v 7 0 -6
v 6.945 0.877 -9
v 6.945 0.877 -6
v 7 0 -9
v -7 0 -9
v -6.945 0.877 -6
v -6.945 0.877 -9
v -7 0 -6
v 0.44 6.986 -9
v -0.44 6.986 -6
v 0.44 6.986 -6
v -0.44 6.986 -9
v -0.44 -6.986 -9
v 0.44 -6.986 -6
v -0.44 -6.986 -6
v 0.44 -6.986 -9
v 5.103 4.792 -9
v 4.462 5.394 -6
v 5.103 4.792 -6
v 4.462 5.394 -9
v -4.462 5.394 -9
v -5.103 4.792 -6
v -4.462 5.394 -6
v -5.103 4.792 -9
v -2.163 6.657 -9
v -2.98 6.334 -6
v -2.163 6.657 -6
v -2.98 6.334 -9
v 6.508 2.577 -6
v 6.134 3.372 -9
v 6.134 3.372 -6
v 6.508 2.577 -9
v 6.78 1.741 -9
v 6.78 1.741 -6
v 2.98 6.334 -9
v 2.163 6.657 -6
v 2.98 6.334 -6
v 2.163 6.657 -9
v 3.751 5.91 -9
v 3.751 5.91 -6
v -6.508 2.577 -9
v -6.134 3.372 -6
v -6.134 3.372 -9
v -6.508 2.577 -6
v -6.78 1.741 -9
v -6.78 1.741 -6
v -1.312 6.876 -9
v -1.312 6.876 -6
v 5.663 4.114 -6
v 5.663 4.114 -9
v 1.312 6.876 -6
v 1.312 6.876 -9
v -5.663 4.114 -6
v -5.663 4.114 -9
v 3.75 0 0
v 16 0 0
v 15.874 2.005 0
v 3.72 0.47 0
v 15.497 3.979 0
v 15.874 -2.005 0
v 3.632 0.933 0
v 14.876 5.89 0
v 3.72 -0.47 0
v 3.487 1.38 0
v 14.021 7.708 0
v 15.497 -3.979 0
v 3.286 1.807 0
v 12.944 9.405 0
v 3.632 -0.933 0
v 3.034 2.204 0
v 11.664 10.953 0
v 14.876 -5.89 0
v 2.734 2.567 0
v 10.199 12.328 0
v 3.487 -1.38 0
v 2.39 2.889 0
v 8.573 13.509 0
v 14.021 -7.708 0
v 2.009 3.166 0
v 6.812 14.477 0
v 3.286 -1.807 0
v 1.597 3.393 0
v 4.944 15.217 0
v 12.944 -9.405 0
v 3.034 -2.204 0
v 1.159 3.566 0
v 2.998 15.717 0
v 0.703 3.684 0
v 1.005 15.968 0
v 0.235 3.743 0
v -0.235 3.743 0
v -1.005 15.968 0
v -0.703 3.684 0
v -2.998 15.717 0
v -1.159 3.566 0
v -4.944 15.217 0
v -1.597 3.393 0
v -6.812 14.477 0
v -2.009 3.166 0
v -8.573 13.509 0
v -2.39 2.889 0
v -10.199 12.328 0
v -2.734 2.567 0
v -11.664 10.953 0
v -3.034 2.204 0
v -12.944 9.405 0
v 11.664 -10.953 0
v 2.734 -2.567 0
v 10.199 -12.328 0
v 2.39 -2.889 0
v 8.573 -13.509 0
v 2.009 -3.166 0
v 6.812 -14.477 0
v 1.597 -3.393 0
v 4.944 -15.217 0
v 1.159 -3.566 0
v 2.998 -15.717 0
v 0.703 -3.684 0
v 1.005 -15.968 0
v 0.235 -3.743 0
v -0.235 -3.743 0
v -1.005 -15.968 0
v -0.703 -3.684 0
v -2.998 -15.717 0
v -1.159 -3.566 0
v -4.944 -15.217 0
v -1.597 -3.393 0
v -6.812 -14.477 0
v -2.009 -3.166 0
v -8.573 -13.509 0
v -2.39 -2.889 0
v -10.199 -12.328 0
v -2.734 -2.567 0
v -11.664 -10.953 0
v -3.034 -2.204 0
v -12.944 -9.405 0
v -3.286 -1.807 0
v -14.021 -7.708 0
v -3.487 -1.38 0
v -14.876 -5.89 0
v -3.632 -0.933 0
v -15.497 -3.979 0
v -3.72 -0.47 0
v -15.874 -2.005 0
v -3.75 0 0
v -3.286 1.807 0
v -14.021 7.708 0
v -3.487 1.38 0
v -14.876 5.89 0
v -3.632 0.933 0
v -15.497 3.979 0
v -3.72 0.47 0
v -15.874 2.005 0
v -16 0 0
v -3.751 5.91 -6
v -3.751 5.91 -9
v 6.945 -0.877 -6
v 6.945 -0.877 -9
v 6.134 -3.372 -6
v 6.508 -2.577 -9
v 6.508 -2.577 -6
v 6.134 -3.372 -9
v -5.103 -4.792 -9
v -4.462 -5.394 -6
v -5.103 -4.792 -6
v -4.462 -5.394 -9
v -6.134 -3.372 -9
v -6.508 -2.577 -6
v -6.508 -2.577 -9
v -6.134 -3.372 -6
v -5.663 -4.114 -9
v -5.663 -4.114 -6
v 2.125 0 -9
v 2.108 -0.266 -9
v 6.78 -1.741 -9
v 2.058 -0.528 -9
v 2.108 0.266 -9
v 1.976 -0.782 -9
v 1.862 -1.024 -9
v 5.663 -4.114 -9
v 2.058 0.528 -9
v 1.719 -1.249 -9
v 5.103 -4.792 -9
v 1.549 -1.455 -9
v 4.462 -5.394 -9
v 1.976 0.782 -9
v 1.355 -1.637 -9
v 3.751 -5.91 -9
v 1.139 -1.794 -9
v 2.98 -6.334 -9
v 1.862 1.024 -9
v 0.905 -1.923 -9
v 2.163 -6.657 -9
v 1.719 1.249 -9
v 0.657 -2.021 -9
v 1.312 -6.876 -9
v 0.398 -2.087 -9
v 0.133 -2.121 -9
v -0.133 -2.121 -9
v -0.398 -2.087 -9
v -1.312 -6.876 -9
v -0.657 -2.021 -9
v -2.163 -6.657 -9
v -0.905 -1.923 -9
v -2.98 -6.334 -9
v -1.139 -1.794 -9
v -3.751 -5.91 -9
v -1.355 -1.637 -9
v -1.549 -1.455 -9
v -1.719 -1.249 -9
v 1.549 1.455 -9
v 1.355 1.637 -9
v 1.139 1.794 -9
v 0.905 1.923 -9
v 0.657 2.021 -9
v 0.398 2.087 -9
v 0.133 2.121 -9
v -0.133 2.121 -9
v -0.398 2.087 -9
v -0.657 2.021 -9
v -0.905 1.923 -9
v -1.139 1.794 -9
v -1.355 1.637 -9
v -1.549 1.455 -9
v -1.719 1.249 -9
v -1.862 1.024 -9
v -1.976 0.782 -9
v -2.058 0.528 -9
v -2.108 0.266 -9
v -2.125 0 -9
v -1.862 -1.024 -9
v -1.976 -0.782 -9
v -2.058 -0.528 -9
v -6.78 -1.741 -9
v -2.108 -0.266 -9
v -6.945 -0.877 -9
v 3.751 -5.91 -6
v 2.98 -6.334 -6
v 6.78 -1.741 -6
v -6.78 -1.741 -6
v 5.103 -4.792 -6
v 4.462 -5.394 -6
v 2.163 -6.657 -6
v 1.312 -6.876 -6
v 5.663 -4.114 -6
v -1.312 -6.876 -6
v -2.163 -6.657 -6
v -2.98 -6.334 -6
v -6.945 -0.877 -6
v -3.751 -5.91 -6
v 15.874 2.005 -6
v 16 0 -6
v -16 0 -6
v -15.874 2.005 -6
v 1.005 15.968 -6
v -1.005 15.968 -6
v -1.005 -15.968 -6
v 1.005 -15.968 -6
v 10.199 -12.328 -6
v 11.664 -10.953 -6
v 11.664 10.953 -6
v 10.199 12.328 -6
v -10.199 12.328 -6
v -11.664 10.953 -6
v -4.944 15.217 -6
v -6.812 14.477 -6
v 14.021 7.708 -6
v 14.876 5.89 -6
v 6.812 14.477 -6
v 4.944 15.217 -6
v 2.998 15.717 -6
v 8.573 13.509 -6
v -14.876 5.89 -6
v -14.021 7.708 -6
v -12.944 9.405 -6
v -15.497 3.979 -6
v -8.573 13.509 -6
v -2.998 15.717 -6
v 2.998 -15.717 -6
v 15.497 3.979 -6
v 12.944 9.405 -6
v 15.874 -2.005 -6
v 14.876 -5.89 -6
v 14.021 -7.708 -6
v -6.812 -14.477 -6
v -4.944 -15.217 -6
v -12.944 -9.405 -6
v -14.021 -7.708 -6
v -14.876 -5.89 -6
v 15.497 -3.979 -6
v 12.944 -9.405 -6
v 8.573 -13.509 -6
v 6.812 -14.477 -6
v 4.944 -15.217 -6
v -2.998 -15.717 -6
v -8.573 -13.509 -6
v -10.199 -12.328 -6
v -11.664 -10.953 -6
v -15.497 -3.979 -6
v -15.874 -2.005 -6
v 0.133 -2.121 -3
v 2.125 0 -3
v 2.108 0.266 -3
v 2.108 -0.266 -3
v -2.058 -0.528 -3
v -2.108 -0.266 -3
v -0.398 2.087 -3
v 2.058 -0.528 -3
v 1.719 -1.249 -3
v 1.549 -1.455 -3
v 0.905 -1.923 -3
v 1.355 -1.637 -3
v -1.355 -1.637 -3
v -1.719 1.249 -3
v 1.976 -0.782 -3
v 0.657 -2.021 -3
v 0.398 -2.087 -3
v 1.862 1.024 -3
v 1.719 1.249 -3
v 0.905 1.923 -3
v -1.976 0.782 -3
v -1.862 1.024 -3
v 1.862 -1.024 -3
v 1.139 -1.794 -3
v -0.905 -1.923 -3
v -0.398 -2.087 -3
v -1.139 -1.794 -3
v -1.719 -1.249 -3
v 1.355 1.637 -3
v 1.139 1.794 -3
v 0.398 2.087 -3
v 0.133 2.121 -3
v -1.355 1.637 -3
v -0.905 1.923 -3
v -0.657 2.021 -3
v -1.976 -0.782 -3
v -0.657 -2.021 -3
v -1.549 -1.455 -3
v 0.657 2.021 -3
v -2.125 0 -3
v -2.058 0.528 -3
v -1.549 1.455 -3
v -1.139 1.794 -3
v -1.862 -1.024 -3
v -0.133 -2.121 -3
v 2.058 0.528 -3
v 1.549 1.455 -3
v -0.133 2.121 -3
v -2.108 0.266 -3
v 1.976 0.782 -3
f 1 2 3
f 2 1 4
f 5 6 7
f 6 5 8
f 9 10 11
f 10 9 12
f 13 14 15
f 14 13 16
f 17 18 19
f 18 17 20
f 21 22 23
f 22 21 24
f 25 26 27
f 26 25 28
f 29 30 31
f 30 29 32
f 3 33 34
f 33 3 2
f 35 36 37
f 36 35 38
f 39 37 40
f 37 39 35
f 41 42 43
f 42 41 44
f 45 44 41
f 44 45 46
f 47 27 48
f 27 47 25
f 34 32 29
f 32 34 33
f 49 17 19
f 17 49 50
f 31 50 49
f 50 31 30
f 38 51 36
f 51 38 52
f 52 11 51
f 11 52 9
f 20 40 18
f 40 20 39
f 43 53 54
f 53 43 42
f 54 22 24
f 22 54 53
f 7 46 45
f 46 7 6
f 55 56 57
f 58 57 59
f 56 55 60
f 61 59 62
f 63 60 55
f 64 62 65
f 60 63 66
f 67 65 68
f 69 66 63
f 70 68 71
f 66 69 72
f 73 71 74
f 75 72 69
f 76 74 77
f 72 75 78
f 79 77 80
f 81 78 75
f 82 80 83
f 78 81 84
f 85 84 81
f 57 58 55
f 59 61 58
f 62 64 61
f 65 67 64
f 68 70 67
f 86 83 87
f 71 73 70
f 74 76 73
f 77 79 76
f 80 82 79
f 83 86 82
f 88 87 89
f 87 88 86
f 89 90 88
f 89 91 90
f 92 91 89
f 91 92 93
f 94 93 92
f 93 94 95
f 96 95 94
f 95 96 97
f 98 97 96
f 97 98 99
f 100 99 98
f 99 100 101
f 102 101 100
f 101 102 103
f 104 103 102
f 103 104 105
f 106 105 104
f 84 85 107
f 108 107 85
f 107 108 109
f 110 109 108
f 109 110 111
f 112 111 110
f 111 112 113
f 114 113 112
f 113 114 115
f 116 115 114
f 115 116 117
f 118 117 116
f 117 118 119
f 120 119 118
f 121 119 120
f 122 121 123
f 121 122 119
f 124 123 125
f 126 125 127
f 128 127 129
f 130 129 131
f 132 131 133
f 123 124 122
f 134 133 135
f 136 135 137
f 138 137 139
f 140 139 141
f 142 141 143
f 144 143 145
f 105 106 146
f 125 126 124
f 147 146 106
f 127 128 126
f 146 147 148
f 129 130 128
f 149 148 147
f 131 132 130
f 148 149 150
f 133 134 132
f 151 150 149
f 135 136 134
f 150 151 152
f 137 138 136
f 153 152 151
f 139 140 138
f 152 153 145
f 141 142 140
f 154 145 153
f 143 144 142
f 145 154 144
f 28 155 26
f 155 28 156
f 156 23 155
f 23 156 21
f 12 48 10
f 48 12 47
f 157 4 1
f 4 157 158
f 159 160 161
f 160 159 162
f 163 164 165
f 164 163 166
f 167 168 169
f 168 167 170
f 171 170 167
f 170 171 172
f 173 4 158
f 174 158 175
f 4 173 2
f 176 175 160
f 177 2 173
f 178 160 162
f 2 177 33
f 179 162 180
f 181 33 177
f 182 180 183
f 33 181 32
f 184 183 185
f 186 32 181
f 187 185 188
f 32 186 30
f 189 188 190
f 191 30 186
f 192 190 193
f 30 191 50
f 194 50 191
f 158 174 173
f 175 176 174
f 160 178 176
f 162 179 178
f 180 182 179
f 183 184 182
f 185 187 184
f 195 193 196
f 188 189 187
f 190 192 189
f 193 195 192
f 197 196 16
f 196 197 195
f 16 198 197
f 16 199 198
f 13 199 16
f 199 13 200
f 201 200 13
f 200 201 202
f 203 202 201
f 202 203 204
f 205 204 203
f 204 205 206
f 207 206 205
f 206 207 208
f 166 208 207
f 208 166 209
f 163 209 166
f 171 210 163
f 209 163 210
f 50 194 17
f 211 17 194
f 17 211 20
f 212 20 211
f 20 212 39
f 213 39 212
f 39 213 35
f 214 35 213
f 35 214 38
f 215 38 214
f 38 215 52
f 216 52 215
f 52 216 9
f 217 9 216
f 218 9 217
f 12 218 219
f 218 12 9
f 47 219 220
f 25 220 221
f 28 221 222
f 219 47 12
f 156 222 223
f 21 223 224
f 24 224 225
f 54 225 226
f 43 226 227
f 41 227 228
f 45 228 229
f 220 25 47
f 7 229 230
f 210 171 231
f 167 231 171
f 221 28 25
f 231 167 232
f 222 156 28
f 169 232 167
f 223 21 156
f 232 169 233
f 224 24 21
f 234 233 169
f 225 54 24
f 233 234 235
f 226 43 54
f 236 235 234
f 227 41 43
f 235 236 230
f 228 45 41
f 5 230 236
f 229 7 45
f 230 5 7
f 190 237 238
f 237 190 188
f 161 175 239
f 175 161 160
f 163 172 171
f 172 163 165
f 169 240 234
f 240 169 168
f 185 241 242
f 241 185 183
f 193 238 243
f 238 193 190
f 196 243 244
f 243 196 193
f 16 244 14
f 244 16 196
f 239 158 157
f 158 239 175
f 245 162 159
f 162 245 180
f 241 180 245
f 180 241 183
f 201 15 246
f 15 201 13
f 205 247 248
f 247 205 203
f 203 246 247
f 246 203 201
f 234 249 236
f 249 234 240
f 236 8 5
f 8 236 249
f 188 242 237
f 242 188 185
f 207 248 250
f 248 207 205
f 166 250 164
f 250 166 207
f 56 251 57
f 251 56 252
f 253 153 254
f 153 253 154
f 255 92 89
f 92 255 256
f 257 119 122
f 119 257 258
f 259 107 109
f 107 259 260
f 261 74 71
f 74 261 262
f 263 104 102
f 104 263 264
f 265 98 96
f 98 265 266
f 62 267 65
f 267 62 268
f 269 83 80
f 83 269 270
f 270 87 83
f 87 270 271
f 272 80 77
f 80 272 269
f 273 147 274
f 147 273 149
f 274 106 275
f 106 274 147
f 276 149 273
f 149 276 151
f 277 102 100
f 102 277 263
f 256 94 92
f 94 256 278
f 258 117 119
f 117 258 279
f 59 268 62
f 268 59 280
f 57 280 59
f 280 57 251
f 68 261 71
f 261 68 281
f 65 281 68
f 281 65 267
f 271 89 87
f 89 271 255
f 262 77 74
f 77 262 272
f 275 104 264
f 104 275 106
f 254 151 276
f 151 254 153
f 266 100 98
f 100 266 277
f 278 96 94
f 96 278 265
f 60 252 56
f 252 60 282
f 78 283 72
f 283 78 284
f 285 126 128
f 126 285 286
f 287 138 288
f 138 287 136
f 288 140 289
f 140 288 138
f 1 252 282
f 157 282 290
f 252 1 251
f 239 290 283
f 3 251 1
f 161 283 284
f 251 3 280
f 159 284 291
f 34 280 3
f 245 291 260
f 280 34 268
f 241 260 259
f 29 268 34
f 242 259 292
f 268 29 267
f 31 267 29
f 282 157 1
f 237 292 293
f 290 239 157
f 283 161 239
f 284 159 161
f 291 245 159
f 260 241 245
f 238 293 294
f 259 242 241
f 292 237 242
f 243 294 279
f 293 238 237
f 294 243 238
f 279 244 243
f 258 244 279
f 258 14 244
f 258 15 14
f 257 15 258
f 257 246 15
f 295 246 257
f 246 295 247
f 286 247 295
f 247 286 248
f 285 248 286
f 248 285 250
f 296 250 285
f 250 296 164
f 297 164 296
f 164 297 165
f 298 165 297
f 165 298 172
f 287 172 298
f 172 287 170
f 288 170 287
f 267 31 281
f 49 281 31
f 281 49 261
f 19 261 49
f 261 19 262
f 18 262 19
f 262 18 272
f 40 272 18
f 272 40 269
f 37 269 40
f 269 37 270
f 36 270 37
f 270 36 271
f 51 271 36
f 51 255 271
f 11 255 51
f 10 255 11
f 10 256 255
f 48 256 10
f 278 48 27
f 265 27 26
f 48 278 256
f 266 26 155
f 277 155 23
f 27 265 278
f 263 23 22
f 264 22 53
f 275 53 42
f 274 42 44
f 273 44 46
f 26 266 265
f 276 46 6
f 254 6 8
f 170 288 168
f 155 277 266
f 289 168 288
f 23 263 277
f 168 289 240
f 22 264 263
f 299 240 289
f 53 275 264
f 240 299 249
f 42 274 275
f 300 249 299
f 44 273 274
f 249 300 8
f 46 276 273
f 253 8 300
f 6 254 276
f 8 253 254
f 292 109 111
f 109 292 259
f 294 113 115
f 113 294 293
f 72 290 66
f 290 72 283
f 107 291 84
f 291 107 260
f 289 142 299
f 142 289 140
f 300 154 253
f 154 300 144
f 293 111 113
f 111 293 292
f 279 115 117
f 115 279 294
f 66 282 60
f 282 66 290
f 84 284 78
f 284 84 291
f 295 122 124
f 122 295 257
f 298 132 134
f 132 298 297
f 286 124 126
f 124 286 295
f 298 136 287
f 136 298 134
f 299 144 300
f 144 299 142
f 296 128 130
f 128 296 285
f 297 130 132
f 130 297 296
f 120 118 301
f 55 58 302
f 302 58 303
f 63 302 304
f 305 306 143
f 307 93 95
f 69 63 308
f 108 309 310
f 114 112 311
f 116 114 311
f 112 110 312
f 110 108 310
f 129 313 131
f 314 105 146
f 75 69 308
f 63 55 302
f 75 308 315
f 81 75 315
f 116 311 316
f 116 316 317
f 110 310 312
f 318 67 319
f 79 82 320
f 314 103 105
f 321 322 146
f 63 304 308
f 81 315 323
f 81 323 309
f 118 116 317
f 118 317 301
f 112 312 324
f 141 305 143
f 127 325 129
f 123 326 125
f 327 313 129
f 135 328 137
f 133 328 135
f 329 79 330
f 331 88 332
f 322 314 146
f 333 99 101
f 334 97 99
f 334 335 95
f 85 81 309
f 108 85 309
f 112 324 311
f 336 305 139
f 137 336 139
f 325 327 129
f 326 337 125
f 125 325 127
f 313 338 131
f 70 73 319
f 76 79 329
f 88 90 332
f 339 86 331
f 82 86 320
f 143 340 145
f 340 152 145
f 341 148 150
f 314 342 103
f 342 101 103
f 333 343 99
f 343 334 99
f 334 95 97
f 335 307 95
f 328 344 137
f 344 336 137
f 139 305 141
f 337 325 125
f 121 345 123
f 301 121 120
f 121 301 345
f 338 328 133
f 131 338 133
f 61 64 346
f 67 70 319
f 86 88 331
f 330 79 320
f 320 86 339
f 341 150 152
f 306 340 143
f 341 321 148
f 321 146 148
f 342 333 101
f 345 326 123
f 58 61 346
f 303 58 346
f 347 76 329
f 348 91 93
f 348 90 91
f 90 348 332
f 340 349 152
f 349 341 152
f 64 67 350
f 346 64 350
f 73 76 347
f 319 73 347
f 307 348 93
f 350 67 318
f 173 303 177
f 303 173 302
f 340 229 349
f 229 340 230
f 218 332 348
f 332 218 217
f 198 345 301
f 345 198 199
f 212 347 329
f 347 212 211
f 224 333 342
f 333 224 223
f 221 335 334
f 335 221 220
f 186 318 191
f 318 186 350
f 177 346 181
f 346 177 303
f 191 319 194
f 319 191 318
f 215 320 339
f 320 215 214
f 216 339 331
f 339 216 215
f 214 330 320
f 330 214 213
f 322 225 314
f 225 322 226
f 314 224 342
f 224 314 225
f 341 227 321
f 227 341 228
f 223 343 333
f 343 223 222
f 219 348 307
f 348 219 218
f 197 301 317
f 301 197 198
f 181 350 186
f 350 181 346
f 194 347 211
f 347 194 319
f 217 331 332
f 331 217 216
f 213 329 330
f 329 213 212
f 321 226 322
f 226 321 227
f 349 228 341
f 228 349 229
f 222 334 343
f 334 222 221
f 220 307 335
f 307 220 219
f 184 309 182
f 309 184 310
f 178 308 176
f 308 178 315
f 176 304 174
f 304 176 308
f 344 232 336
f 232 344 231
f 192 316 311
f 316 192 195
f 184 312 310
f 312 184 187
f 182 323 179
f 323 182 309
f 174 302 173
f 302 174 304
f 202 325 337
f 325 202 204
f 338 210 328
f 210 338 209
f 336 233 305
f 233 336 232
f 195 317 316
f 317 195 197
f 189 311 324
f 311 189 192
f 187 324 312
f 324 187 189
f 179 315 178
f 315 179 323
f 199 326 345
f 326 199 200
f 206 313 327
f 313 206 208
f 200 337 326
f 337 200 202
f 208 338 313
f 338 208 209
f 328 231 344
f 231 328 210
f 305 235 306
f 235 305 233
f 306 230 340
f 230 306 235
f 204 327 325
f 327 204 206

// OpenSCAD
$fn = 50;


difference() {
	union() {
		translate(v = [0, 0, -9.0000000000]) {
			cylinder(h = 9, r = 7.0000000000);
		}
		translate(v = [0, 0, -6.0000000000]) {
			cylinder(h = 6, r = 16.0000000000);
		}
	}
	union() {
		translate(v = [0, 0, 0]) {
			rotate(a = [0, 0, 0]) {
				difference() {
					union() {
						#translate(v = [0, 0, -9.0000000000]) {
							cylinder(h = 9, r = 2.0000000000);
						}
						#translate(v = [0, 0, -3]) {
							cylinder(h = 3, r1 = 2.1250000000, r2 = 3.7500000000);
						}
						#translate(v = [0, 0, -9.0000000000]) {
							cylinder(h = 9, r = 2.1250000000);
						}
						#translate(v = [0, 0, -9.0000000000]) {
							cylinder(h = 9, r = 2.0000000000);
						}
					}
					union();
				}
			}
		}
	}
}
